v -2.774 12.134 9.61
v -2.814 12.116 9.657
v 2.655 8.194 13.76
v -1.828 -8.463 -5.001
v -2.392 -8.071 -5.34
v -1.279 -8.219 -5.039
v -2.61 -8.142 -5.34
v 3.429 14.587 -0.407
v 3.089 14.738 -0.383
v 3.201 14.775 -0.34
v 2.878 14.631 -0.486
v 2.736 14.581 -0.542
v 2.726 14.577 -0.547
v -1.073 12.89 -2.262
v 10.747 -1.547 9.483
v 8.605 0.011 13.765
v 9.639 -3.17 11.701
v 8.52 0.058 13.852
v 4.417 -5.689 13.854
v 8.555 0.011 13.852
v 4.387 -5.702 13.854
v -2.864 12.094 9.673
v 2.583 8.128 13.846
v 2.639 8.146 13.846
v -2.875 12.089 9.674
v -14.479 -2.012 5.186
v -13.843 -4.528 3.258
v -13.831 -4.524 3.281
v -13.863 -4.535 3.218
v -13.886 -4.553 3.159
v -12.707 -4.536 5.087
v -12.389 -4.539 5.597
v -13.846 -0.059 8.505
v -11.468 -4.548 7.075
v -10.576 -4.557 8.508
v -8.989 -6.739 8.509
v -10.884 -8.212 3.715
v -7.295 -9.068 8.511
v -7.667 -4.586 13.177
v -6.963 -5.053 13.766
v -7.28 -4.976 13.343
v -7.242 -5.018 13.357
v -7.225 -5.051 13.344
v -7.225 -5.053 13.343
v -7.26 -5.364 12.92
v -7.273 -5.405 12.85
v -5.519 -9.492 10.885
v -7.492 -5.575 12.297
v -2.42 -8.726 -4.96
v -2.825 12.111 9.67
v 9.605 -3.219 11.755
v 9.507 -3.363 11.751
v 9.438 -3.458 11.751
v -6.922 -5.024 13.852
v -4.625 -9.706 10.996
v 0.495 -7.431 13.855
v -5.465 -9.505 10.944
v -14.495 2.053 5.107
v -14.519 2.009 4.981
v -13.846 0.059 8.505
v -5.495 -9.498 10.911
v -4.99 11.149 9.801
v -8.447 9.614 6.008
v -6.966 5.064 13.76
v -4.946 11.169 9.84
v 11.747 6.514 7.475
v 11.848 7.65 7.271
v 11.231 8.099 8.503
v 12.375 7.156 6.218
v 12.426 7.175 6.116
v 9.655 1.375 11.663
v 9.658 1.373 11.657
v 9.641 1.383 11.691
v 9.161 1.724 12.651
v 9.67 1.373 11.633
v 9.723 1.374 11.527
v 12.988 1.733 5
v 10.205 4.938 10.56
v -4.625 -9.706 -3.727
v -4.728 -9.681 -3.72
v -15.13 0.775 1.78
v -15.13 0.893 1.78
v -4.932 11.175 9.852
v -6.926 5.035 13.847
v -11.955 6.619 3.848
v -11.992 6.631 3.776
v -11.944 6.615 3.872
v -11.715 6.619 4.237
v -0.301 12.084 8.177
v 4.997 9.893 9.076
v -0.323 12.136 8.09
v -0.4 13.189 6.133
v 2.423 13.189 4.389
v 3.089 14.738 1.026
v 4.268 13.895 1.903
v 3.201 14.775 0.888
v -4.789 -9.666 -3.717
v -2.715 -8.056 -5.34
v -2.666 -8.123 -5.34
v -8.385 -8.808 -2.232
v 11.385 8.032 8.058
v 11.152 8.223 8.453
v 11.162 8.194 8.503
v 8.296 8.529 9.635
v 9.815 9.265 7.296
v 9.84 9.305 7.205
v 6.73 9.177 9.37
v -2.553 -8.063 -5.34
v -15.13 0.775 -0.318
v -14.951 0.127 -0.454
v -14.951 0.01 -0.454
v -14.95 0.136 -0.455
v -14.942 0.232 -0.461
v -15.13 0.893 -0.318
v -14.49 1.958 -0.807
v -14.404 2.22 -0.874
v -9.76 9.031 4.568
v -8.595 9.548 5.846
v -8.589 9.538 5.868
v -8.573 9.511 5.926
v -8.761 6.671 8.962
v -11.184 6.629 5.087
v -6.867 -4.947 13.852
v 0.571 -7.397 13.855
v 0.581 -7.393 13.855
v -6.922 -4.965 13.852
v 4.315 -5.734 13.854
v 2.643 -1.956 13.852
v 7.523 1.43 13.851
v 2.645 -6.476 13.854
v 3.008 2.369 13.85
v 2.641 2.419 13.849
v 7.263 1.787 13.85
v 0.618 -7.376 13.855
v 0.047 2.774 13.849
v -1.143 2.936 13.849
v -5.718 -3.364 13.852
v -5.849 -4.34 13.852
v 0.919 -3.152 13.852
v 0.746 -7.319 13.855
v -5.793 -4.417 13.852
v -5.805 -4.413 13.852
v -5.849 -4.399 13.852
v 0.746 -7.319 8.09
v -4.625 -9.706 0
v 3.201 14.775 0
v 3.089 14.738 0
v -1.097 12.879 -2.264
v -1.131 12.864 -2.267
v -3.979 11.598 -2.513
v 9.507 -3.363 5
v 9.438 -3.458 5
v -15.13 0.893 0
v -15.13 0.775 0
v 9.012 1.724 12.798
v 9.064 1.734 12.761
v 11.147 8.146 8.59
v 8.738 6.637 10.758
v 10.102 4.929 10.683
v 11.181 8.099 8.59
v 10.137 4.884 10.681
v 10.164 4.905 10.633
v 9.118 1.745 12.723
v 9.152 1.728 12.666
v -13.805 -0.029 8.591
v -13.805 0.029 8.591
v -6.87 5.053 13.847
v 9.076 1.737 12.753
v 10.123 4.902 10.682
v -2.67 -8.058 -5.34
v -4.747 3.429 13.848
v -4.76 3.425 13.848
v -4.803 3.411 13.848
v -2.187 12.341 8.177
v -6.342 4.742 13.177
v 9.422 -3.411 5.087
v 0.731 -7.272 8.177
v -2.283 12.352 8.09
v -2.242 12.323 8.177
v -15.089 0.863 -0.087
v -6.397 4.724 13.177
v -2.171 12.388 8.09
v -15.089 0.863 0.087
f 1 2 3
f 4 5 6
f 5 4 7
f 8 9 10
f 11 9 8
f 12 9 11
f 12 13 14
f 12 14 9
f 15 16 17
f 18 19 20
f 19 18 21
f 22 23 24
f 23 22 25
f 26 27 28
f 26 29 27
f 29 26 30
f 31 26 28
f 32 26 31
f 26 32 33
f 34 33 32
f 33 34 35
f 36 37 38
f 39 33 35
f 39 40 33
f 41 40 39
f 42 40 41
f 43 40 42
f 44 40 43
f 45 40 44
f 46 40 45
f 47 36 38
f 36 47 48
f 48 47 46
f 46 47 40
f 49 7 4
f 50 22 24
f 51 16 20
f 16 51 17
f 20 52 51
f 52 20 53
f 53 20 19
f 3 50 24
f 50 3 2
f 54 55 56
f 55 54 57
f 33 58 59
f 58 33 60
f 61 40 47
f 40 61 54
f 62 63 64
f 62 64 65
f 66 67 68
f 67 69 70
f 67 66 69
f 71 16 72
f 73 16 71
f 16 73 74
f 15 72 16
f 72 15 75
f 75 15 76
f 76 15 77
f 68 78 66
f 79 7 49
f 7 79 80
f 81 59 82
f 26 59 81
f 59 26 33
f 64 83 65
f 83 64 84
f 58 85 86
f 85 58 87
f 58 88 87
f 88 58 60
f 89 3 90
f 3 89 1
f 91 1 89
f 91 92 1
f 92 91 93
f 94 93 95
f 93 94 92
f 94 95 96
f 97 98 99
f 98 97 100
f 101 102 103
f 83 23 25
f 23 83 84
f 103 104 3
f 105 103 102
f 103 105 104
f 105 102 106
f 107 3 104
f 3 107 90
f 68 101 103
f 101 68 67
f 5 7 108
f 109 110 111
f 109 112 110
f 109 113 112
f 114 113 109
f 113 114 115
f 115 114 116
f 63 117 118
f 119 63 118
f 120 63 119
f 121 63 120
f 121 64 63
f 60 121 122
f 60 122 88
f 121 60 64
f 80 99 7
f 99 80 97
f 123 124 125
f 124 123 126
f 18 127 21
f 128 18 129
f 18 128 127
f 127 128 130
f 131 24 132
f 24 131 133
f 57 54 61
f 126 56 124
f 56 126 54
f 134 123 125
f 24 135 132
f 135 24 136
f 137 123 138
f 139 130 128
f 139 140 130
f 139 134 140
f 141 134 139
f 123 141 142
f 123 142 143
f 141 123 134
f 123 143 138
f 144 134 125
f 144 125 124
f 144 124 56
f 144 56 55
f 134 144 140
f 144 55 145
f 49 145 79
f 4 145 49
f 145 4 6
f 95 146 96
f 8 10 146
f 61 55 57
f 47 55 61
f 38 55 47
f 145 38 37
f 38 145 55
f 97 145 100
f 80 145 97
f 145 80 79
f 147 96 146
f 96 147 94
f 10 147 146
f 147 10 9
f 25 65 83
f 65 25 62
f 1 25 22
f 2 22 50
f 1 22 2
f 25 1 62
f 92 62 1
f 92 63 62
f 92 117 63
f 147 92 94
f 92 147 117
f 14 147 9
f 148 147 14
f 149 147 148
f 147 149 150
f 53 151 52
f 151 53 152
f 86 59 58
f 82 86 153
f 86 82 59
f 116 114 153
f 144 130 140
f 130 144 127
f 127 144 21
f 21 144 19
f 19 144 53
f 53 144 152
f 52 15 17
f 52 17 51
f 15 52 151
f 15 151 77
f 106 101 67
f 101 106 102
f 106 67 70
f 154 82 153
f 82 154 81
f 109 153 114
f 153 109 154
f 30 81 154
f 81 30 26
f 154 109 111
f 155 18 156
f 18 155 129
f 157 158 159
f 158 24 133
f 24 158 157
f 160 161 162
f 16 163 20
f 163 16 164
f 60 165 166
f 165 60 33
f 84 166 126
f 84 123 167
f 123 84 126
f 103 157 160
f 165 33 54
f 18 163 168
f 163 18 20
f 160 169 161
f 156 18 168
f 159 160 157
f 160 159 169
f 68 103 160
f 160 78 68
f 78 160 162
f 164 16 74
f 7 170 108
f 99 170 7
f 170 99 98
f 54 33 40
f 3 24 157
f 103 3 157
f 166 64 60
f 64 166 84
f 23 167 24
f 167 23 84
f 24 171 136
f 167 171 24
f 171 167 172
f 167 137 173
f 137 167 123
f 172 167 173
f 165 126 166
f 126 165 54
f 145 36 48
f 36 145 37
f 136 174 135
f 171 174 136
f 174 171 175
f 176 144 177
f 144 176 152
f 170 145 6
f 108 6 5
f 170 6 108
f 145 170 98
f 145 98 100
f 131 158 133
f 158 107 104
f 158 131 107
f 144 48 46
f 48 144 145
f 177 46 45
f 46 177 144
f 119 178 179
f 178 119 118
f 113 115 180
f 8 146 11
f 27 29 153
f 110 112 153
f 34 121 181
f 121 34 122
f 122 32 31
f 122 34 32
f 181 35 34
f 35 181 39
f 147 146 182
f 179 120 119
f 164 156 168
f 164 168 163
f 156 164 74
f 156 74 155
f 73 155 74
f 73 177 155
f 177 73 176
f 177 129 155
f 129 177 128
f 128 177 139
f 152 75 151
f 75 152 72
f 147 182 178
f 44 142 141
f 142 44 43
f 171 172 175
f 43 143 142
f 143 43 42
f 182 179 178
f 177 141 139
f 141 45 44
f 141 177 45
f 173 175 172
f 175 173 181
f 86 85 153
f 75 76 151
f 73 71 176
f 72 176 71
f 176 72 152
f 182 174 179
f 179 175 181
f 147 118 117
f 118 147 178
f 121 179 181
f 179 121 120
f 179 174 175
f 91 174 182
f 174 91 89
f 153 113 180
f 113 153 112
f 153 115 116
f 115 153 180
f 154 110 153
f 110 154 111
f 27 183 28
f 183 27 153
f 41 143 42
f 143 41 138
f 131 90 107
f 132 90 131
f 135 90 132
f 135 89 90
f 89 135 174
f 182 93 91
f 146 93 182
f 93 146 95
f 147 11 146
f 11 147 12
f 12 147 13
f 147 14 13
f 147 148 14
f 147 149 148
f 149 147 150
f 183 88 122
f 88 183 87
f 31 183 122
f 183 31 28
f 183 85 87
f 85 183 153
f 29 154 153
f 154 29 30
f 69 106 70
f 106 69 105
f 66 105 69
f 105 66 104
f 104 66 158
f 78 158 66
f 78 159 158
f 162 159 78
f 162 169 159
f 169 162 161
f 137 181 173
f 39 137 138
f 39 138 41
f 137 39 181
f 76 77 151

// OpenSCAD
// Auto-generated OpenSCAD file

    inner_points = 10*[[1.504661527029664, 0.48947506274315233, -0.4999999999999145], [-1.3079948667278423, -0.7599647980164363, 0.4999999999999145], [-0.6357029077328671, 0.46948589779540517, -1.3090169943752812], [-0.22020362671136517, 1.2293282153003366, 0.8090169943744602], [0.7706252891456874, 1.09420582817551, -0.8090169943751957], [-1.5048615327414891, 0.08338774737153498, -3.865796571744795e-13], [0.9674919551595329, 0.2508532827872281, -1.3090169943748946], [-1.3079948667276438, -0.759964798016747, -0.5000000000000855], [1.5046615270294654, 0.489475062743463, 0.5000000000000855], [-0.7708252948577115, -0.5213430180605121, 1.3090169943748946], [-0.2202036267110432, 1.2293282152998337, -0.8090169943754346], [-1.0893622517194665, 0.8432300648756529, -0.5000000000005401], [0.09833333015123245, -0.13524486763714477, -1.618033988749895], [-0.7708252948571909, -0.5213430180613257, -1.3090169943750003], [0.9674919551590123, 0.2508532827880416, 1.3090169943750003], [0.098333330150589, -0.13524486763613924, 1.618033988749895], [0.3169659451590877, 1.467949995255758, -4.5458081743277035e-13], [-1.0893622517196655, 0.8432300648759636, 0.4999999999994599], [0.7706252891453657, 1.094205828176013, 0.8090169943746992], [-0.6357029077333877, 0.46948589779621863, 1.3090169943746135], [0.07153360287893762, -0.7224188430740421, -0.8090169943747703], [0.9406922278870392, -0.3363206926493587, 0.5000000000002299], [0.07153360287861593, -0.7224188430735395, 0.8090169943751245], [0.940692227887238, -0.3363206926496693, -0.4999999999997701], [-0.46563596899151527, -0.9610406230294636, 1.444677710793485e-13]];

    outer_points = 10*[[-0.000564910313048521, 1.6180336318009756, -0.0009143233444000093], [0.000564910313048521, -1.6180336318009756, 0.0009143233444000093], [-1.376498108047588, 0.0, 0.8504627841894703], [0.8504625965717973, 0.0010747608291631194, 1.3764978043830696], [-0.4258986806464176, 1.3093488249583056, 0.8498529032449322], [-0.42498463655930974, -1.3086845862361058, 0.8513323094928791], [-0.9515134714882783, 1.3086845862361058, -0.0008695253034087247], [-0.9505994274011704, -1.3093488249583056, 0.0006098809445380104], [0.9505994274011704, 1.3093488249583056, -0.0006098809445380104], [0.9515134714882783, -1.3086845862361058, 0.0008695253034087247], [-0.6885536307365924, 0.5005372701112993, 1.3760052062324764], [-0.688204496962533, -0.49946250928213626, 1.376570289136023], [-1.5390162273083896, 0.49946250928213626, -0.0004925981505932153], [-1.5386670935343303, -0.5005372701112993, 7.248475295340562e-05], [1.5386670935343303, 0.5005372701112993, -7.248475295340562e-05], [1.5390162273083896, -0.49946250928213626, 0.0004925981505932153], [0.2623949304386375, 0.8098863156761693, 1.375960408191485], [0.2629598407516861, -0.8081473161248063, 1.3768747315358851], [1.113117546661972, 0.8098863156761693, 0.8503455013955257], [1.1136824569750208, -0.8081473161248063, 0.8512598247399259], [-0.850578880895062, -0.0005941131744505647, -0.525847139770523], [0.6880882126392683, 0.4999431569368488, -0.5259196245234764], [0.6884373464133277, -0.5000566224565869, -0.5253545416199297], [-0.26307612507495054, 0.8086279637795188, -0.5262240669233383], [-0.26251121476190203, -0.8094056680214567, -0.5253097435789383]];

    // Convex hull for inner set (I)
    module inner_hull() {
        hull() {
            for (p = inner_points) {
                translate(p) sphere(r=0.1);
            }
        }
    }

    // Convex hull for outer set (O) minus inner hull (O \ I)
    module outer_minus_inner() {
        difference() {
            hull() {
                for (p = outer_points) {
                    translate(p) sphere(r=0.1);
                }
            }
            inner_hull(); // Subtract inner hull
        }
    }

    // Convex hull for outer set (O) minus all translated inner hulls
    module outer_minus_AllTranslationInner() {
        difference() {
            hull() {
                for (p = outer_points) {
                    translate(p) sphere(r=0.1);
                }
            }
            hull() {
                translate([0,0,50]) inner_hull();
                translate([0,0,-50]) inner_hull();
            }; // Subtract translated inner hulls
        }
    }

    // Difference between outer_minus_inner and outer_minus_AllTranslationInner
    module outer_minus_inner_diff() {
        difference() {
            // Outer minus inner
            difference() {
                hull() {
                    for (p = outer_points) {
                        translate(p) sphere(r=0.1);
                    }
                }
                inner_hull();
            }

            // Subtract Outer minus AllTranslationInner
            difference() {
                hull() {
                    for (p = outer_points) {
                        translate(p) sphere(r=0.1);
                    }
                }
                hull() {
                    translate([0,0,50]) inner_hull();
                    translate([0,0,-50]) inner_hull();
                };
            }
        }
    }

    // Rendering all with colors applied
    color([1, 1, 0, 1]) outer_minus_inner_diff(); // Opaque yellow
    
